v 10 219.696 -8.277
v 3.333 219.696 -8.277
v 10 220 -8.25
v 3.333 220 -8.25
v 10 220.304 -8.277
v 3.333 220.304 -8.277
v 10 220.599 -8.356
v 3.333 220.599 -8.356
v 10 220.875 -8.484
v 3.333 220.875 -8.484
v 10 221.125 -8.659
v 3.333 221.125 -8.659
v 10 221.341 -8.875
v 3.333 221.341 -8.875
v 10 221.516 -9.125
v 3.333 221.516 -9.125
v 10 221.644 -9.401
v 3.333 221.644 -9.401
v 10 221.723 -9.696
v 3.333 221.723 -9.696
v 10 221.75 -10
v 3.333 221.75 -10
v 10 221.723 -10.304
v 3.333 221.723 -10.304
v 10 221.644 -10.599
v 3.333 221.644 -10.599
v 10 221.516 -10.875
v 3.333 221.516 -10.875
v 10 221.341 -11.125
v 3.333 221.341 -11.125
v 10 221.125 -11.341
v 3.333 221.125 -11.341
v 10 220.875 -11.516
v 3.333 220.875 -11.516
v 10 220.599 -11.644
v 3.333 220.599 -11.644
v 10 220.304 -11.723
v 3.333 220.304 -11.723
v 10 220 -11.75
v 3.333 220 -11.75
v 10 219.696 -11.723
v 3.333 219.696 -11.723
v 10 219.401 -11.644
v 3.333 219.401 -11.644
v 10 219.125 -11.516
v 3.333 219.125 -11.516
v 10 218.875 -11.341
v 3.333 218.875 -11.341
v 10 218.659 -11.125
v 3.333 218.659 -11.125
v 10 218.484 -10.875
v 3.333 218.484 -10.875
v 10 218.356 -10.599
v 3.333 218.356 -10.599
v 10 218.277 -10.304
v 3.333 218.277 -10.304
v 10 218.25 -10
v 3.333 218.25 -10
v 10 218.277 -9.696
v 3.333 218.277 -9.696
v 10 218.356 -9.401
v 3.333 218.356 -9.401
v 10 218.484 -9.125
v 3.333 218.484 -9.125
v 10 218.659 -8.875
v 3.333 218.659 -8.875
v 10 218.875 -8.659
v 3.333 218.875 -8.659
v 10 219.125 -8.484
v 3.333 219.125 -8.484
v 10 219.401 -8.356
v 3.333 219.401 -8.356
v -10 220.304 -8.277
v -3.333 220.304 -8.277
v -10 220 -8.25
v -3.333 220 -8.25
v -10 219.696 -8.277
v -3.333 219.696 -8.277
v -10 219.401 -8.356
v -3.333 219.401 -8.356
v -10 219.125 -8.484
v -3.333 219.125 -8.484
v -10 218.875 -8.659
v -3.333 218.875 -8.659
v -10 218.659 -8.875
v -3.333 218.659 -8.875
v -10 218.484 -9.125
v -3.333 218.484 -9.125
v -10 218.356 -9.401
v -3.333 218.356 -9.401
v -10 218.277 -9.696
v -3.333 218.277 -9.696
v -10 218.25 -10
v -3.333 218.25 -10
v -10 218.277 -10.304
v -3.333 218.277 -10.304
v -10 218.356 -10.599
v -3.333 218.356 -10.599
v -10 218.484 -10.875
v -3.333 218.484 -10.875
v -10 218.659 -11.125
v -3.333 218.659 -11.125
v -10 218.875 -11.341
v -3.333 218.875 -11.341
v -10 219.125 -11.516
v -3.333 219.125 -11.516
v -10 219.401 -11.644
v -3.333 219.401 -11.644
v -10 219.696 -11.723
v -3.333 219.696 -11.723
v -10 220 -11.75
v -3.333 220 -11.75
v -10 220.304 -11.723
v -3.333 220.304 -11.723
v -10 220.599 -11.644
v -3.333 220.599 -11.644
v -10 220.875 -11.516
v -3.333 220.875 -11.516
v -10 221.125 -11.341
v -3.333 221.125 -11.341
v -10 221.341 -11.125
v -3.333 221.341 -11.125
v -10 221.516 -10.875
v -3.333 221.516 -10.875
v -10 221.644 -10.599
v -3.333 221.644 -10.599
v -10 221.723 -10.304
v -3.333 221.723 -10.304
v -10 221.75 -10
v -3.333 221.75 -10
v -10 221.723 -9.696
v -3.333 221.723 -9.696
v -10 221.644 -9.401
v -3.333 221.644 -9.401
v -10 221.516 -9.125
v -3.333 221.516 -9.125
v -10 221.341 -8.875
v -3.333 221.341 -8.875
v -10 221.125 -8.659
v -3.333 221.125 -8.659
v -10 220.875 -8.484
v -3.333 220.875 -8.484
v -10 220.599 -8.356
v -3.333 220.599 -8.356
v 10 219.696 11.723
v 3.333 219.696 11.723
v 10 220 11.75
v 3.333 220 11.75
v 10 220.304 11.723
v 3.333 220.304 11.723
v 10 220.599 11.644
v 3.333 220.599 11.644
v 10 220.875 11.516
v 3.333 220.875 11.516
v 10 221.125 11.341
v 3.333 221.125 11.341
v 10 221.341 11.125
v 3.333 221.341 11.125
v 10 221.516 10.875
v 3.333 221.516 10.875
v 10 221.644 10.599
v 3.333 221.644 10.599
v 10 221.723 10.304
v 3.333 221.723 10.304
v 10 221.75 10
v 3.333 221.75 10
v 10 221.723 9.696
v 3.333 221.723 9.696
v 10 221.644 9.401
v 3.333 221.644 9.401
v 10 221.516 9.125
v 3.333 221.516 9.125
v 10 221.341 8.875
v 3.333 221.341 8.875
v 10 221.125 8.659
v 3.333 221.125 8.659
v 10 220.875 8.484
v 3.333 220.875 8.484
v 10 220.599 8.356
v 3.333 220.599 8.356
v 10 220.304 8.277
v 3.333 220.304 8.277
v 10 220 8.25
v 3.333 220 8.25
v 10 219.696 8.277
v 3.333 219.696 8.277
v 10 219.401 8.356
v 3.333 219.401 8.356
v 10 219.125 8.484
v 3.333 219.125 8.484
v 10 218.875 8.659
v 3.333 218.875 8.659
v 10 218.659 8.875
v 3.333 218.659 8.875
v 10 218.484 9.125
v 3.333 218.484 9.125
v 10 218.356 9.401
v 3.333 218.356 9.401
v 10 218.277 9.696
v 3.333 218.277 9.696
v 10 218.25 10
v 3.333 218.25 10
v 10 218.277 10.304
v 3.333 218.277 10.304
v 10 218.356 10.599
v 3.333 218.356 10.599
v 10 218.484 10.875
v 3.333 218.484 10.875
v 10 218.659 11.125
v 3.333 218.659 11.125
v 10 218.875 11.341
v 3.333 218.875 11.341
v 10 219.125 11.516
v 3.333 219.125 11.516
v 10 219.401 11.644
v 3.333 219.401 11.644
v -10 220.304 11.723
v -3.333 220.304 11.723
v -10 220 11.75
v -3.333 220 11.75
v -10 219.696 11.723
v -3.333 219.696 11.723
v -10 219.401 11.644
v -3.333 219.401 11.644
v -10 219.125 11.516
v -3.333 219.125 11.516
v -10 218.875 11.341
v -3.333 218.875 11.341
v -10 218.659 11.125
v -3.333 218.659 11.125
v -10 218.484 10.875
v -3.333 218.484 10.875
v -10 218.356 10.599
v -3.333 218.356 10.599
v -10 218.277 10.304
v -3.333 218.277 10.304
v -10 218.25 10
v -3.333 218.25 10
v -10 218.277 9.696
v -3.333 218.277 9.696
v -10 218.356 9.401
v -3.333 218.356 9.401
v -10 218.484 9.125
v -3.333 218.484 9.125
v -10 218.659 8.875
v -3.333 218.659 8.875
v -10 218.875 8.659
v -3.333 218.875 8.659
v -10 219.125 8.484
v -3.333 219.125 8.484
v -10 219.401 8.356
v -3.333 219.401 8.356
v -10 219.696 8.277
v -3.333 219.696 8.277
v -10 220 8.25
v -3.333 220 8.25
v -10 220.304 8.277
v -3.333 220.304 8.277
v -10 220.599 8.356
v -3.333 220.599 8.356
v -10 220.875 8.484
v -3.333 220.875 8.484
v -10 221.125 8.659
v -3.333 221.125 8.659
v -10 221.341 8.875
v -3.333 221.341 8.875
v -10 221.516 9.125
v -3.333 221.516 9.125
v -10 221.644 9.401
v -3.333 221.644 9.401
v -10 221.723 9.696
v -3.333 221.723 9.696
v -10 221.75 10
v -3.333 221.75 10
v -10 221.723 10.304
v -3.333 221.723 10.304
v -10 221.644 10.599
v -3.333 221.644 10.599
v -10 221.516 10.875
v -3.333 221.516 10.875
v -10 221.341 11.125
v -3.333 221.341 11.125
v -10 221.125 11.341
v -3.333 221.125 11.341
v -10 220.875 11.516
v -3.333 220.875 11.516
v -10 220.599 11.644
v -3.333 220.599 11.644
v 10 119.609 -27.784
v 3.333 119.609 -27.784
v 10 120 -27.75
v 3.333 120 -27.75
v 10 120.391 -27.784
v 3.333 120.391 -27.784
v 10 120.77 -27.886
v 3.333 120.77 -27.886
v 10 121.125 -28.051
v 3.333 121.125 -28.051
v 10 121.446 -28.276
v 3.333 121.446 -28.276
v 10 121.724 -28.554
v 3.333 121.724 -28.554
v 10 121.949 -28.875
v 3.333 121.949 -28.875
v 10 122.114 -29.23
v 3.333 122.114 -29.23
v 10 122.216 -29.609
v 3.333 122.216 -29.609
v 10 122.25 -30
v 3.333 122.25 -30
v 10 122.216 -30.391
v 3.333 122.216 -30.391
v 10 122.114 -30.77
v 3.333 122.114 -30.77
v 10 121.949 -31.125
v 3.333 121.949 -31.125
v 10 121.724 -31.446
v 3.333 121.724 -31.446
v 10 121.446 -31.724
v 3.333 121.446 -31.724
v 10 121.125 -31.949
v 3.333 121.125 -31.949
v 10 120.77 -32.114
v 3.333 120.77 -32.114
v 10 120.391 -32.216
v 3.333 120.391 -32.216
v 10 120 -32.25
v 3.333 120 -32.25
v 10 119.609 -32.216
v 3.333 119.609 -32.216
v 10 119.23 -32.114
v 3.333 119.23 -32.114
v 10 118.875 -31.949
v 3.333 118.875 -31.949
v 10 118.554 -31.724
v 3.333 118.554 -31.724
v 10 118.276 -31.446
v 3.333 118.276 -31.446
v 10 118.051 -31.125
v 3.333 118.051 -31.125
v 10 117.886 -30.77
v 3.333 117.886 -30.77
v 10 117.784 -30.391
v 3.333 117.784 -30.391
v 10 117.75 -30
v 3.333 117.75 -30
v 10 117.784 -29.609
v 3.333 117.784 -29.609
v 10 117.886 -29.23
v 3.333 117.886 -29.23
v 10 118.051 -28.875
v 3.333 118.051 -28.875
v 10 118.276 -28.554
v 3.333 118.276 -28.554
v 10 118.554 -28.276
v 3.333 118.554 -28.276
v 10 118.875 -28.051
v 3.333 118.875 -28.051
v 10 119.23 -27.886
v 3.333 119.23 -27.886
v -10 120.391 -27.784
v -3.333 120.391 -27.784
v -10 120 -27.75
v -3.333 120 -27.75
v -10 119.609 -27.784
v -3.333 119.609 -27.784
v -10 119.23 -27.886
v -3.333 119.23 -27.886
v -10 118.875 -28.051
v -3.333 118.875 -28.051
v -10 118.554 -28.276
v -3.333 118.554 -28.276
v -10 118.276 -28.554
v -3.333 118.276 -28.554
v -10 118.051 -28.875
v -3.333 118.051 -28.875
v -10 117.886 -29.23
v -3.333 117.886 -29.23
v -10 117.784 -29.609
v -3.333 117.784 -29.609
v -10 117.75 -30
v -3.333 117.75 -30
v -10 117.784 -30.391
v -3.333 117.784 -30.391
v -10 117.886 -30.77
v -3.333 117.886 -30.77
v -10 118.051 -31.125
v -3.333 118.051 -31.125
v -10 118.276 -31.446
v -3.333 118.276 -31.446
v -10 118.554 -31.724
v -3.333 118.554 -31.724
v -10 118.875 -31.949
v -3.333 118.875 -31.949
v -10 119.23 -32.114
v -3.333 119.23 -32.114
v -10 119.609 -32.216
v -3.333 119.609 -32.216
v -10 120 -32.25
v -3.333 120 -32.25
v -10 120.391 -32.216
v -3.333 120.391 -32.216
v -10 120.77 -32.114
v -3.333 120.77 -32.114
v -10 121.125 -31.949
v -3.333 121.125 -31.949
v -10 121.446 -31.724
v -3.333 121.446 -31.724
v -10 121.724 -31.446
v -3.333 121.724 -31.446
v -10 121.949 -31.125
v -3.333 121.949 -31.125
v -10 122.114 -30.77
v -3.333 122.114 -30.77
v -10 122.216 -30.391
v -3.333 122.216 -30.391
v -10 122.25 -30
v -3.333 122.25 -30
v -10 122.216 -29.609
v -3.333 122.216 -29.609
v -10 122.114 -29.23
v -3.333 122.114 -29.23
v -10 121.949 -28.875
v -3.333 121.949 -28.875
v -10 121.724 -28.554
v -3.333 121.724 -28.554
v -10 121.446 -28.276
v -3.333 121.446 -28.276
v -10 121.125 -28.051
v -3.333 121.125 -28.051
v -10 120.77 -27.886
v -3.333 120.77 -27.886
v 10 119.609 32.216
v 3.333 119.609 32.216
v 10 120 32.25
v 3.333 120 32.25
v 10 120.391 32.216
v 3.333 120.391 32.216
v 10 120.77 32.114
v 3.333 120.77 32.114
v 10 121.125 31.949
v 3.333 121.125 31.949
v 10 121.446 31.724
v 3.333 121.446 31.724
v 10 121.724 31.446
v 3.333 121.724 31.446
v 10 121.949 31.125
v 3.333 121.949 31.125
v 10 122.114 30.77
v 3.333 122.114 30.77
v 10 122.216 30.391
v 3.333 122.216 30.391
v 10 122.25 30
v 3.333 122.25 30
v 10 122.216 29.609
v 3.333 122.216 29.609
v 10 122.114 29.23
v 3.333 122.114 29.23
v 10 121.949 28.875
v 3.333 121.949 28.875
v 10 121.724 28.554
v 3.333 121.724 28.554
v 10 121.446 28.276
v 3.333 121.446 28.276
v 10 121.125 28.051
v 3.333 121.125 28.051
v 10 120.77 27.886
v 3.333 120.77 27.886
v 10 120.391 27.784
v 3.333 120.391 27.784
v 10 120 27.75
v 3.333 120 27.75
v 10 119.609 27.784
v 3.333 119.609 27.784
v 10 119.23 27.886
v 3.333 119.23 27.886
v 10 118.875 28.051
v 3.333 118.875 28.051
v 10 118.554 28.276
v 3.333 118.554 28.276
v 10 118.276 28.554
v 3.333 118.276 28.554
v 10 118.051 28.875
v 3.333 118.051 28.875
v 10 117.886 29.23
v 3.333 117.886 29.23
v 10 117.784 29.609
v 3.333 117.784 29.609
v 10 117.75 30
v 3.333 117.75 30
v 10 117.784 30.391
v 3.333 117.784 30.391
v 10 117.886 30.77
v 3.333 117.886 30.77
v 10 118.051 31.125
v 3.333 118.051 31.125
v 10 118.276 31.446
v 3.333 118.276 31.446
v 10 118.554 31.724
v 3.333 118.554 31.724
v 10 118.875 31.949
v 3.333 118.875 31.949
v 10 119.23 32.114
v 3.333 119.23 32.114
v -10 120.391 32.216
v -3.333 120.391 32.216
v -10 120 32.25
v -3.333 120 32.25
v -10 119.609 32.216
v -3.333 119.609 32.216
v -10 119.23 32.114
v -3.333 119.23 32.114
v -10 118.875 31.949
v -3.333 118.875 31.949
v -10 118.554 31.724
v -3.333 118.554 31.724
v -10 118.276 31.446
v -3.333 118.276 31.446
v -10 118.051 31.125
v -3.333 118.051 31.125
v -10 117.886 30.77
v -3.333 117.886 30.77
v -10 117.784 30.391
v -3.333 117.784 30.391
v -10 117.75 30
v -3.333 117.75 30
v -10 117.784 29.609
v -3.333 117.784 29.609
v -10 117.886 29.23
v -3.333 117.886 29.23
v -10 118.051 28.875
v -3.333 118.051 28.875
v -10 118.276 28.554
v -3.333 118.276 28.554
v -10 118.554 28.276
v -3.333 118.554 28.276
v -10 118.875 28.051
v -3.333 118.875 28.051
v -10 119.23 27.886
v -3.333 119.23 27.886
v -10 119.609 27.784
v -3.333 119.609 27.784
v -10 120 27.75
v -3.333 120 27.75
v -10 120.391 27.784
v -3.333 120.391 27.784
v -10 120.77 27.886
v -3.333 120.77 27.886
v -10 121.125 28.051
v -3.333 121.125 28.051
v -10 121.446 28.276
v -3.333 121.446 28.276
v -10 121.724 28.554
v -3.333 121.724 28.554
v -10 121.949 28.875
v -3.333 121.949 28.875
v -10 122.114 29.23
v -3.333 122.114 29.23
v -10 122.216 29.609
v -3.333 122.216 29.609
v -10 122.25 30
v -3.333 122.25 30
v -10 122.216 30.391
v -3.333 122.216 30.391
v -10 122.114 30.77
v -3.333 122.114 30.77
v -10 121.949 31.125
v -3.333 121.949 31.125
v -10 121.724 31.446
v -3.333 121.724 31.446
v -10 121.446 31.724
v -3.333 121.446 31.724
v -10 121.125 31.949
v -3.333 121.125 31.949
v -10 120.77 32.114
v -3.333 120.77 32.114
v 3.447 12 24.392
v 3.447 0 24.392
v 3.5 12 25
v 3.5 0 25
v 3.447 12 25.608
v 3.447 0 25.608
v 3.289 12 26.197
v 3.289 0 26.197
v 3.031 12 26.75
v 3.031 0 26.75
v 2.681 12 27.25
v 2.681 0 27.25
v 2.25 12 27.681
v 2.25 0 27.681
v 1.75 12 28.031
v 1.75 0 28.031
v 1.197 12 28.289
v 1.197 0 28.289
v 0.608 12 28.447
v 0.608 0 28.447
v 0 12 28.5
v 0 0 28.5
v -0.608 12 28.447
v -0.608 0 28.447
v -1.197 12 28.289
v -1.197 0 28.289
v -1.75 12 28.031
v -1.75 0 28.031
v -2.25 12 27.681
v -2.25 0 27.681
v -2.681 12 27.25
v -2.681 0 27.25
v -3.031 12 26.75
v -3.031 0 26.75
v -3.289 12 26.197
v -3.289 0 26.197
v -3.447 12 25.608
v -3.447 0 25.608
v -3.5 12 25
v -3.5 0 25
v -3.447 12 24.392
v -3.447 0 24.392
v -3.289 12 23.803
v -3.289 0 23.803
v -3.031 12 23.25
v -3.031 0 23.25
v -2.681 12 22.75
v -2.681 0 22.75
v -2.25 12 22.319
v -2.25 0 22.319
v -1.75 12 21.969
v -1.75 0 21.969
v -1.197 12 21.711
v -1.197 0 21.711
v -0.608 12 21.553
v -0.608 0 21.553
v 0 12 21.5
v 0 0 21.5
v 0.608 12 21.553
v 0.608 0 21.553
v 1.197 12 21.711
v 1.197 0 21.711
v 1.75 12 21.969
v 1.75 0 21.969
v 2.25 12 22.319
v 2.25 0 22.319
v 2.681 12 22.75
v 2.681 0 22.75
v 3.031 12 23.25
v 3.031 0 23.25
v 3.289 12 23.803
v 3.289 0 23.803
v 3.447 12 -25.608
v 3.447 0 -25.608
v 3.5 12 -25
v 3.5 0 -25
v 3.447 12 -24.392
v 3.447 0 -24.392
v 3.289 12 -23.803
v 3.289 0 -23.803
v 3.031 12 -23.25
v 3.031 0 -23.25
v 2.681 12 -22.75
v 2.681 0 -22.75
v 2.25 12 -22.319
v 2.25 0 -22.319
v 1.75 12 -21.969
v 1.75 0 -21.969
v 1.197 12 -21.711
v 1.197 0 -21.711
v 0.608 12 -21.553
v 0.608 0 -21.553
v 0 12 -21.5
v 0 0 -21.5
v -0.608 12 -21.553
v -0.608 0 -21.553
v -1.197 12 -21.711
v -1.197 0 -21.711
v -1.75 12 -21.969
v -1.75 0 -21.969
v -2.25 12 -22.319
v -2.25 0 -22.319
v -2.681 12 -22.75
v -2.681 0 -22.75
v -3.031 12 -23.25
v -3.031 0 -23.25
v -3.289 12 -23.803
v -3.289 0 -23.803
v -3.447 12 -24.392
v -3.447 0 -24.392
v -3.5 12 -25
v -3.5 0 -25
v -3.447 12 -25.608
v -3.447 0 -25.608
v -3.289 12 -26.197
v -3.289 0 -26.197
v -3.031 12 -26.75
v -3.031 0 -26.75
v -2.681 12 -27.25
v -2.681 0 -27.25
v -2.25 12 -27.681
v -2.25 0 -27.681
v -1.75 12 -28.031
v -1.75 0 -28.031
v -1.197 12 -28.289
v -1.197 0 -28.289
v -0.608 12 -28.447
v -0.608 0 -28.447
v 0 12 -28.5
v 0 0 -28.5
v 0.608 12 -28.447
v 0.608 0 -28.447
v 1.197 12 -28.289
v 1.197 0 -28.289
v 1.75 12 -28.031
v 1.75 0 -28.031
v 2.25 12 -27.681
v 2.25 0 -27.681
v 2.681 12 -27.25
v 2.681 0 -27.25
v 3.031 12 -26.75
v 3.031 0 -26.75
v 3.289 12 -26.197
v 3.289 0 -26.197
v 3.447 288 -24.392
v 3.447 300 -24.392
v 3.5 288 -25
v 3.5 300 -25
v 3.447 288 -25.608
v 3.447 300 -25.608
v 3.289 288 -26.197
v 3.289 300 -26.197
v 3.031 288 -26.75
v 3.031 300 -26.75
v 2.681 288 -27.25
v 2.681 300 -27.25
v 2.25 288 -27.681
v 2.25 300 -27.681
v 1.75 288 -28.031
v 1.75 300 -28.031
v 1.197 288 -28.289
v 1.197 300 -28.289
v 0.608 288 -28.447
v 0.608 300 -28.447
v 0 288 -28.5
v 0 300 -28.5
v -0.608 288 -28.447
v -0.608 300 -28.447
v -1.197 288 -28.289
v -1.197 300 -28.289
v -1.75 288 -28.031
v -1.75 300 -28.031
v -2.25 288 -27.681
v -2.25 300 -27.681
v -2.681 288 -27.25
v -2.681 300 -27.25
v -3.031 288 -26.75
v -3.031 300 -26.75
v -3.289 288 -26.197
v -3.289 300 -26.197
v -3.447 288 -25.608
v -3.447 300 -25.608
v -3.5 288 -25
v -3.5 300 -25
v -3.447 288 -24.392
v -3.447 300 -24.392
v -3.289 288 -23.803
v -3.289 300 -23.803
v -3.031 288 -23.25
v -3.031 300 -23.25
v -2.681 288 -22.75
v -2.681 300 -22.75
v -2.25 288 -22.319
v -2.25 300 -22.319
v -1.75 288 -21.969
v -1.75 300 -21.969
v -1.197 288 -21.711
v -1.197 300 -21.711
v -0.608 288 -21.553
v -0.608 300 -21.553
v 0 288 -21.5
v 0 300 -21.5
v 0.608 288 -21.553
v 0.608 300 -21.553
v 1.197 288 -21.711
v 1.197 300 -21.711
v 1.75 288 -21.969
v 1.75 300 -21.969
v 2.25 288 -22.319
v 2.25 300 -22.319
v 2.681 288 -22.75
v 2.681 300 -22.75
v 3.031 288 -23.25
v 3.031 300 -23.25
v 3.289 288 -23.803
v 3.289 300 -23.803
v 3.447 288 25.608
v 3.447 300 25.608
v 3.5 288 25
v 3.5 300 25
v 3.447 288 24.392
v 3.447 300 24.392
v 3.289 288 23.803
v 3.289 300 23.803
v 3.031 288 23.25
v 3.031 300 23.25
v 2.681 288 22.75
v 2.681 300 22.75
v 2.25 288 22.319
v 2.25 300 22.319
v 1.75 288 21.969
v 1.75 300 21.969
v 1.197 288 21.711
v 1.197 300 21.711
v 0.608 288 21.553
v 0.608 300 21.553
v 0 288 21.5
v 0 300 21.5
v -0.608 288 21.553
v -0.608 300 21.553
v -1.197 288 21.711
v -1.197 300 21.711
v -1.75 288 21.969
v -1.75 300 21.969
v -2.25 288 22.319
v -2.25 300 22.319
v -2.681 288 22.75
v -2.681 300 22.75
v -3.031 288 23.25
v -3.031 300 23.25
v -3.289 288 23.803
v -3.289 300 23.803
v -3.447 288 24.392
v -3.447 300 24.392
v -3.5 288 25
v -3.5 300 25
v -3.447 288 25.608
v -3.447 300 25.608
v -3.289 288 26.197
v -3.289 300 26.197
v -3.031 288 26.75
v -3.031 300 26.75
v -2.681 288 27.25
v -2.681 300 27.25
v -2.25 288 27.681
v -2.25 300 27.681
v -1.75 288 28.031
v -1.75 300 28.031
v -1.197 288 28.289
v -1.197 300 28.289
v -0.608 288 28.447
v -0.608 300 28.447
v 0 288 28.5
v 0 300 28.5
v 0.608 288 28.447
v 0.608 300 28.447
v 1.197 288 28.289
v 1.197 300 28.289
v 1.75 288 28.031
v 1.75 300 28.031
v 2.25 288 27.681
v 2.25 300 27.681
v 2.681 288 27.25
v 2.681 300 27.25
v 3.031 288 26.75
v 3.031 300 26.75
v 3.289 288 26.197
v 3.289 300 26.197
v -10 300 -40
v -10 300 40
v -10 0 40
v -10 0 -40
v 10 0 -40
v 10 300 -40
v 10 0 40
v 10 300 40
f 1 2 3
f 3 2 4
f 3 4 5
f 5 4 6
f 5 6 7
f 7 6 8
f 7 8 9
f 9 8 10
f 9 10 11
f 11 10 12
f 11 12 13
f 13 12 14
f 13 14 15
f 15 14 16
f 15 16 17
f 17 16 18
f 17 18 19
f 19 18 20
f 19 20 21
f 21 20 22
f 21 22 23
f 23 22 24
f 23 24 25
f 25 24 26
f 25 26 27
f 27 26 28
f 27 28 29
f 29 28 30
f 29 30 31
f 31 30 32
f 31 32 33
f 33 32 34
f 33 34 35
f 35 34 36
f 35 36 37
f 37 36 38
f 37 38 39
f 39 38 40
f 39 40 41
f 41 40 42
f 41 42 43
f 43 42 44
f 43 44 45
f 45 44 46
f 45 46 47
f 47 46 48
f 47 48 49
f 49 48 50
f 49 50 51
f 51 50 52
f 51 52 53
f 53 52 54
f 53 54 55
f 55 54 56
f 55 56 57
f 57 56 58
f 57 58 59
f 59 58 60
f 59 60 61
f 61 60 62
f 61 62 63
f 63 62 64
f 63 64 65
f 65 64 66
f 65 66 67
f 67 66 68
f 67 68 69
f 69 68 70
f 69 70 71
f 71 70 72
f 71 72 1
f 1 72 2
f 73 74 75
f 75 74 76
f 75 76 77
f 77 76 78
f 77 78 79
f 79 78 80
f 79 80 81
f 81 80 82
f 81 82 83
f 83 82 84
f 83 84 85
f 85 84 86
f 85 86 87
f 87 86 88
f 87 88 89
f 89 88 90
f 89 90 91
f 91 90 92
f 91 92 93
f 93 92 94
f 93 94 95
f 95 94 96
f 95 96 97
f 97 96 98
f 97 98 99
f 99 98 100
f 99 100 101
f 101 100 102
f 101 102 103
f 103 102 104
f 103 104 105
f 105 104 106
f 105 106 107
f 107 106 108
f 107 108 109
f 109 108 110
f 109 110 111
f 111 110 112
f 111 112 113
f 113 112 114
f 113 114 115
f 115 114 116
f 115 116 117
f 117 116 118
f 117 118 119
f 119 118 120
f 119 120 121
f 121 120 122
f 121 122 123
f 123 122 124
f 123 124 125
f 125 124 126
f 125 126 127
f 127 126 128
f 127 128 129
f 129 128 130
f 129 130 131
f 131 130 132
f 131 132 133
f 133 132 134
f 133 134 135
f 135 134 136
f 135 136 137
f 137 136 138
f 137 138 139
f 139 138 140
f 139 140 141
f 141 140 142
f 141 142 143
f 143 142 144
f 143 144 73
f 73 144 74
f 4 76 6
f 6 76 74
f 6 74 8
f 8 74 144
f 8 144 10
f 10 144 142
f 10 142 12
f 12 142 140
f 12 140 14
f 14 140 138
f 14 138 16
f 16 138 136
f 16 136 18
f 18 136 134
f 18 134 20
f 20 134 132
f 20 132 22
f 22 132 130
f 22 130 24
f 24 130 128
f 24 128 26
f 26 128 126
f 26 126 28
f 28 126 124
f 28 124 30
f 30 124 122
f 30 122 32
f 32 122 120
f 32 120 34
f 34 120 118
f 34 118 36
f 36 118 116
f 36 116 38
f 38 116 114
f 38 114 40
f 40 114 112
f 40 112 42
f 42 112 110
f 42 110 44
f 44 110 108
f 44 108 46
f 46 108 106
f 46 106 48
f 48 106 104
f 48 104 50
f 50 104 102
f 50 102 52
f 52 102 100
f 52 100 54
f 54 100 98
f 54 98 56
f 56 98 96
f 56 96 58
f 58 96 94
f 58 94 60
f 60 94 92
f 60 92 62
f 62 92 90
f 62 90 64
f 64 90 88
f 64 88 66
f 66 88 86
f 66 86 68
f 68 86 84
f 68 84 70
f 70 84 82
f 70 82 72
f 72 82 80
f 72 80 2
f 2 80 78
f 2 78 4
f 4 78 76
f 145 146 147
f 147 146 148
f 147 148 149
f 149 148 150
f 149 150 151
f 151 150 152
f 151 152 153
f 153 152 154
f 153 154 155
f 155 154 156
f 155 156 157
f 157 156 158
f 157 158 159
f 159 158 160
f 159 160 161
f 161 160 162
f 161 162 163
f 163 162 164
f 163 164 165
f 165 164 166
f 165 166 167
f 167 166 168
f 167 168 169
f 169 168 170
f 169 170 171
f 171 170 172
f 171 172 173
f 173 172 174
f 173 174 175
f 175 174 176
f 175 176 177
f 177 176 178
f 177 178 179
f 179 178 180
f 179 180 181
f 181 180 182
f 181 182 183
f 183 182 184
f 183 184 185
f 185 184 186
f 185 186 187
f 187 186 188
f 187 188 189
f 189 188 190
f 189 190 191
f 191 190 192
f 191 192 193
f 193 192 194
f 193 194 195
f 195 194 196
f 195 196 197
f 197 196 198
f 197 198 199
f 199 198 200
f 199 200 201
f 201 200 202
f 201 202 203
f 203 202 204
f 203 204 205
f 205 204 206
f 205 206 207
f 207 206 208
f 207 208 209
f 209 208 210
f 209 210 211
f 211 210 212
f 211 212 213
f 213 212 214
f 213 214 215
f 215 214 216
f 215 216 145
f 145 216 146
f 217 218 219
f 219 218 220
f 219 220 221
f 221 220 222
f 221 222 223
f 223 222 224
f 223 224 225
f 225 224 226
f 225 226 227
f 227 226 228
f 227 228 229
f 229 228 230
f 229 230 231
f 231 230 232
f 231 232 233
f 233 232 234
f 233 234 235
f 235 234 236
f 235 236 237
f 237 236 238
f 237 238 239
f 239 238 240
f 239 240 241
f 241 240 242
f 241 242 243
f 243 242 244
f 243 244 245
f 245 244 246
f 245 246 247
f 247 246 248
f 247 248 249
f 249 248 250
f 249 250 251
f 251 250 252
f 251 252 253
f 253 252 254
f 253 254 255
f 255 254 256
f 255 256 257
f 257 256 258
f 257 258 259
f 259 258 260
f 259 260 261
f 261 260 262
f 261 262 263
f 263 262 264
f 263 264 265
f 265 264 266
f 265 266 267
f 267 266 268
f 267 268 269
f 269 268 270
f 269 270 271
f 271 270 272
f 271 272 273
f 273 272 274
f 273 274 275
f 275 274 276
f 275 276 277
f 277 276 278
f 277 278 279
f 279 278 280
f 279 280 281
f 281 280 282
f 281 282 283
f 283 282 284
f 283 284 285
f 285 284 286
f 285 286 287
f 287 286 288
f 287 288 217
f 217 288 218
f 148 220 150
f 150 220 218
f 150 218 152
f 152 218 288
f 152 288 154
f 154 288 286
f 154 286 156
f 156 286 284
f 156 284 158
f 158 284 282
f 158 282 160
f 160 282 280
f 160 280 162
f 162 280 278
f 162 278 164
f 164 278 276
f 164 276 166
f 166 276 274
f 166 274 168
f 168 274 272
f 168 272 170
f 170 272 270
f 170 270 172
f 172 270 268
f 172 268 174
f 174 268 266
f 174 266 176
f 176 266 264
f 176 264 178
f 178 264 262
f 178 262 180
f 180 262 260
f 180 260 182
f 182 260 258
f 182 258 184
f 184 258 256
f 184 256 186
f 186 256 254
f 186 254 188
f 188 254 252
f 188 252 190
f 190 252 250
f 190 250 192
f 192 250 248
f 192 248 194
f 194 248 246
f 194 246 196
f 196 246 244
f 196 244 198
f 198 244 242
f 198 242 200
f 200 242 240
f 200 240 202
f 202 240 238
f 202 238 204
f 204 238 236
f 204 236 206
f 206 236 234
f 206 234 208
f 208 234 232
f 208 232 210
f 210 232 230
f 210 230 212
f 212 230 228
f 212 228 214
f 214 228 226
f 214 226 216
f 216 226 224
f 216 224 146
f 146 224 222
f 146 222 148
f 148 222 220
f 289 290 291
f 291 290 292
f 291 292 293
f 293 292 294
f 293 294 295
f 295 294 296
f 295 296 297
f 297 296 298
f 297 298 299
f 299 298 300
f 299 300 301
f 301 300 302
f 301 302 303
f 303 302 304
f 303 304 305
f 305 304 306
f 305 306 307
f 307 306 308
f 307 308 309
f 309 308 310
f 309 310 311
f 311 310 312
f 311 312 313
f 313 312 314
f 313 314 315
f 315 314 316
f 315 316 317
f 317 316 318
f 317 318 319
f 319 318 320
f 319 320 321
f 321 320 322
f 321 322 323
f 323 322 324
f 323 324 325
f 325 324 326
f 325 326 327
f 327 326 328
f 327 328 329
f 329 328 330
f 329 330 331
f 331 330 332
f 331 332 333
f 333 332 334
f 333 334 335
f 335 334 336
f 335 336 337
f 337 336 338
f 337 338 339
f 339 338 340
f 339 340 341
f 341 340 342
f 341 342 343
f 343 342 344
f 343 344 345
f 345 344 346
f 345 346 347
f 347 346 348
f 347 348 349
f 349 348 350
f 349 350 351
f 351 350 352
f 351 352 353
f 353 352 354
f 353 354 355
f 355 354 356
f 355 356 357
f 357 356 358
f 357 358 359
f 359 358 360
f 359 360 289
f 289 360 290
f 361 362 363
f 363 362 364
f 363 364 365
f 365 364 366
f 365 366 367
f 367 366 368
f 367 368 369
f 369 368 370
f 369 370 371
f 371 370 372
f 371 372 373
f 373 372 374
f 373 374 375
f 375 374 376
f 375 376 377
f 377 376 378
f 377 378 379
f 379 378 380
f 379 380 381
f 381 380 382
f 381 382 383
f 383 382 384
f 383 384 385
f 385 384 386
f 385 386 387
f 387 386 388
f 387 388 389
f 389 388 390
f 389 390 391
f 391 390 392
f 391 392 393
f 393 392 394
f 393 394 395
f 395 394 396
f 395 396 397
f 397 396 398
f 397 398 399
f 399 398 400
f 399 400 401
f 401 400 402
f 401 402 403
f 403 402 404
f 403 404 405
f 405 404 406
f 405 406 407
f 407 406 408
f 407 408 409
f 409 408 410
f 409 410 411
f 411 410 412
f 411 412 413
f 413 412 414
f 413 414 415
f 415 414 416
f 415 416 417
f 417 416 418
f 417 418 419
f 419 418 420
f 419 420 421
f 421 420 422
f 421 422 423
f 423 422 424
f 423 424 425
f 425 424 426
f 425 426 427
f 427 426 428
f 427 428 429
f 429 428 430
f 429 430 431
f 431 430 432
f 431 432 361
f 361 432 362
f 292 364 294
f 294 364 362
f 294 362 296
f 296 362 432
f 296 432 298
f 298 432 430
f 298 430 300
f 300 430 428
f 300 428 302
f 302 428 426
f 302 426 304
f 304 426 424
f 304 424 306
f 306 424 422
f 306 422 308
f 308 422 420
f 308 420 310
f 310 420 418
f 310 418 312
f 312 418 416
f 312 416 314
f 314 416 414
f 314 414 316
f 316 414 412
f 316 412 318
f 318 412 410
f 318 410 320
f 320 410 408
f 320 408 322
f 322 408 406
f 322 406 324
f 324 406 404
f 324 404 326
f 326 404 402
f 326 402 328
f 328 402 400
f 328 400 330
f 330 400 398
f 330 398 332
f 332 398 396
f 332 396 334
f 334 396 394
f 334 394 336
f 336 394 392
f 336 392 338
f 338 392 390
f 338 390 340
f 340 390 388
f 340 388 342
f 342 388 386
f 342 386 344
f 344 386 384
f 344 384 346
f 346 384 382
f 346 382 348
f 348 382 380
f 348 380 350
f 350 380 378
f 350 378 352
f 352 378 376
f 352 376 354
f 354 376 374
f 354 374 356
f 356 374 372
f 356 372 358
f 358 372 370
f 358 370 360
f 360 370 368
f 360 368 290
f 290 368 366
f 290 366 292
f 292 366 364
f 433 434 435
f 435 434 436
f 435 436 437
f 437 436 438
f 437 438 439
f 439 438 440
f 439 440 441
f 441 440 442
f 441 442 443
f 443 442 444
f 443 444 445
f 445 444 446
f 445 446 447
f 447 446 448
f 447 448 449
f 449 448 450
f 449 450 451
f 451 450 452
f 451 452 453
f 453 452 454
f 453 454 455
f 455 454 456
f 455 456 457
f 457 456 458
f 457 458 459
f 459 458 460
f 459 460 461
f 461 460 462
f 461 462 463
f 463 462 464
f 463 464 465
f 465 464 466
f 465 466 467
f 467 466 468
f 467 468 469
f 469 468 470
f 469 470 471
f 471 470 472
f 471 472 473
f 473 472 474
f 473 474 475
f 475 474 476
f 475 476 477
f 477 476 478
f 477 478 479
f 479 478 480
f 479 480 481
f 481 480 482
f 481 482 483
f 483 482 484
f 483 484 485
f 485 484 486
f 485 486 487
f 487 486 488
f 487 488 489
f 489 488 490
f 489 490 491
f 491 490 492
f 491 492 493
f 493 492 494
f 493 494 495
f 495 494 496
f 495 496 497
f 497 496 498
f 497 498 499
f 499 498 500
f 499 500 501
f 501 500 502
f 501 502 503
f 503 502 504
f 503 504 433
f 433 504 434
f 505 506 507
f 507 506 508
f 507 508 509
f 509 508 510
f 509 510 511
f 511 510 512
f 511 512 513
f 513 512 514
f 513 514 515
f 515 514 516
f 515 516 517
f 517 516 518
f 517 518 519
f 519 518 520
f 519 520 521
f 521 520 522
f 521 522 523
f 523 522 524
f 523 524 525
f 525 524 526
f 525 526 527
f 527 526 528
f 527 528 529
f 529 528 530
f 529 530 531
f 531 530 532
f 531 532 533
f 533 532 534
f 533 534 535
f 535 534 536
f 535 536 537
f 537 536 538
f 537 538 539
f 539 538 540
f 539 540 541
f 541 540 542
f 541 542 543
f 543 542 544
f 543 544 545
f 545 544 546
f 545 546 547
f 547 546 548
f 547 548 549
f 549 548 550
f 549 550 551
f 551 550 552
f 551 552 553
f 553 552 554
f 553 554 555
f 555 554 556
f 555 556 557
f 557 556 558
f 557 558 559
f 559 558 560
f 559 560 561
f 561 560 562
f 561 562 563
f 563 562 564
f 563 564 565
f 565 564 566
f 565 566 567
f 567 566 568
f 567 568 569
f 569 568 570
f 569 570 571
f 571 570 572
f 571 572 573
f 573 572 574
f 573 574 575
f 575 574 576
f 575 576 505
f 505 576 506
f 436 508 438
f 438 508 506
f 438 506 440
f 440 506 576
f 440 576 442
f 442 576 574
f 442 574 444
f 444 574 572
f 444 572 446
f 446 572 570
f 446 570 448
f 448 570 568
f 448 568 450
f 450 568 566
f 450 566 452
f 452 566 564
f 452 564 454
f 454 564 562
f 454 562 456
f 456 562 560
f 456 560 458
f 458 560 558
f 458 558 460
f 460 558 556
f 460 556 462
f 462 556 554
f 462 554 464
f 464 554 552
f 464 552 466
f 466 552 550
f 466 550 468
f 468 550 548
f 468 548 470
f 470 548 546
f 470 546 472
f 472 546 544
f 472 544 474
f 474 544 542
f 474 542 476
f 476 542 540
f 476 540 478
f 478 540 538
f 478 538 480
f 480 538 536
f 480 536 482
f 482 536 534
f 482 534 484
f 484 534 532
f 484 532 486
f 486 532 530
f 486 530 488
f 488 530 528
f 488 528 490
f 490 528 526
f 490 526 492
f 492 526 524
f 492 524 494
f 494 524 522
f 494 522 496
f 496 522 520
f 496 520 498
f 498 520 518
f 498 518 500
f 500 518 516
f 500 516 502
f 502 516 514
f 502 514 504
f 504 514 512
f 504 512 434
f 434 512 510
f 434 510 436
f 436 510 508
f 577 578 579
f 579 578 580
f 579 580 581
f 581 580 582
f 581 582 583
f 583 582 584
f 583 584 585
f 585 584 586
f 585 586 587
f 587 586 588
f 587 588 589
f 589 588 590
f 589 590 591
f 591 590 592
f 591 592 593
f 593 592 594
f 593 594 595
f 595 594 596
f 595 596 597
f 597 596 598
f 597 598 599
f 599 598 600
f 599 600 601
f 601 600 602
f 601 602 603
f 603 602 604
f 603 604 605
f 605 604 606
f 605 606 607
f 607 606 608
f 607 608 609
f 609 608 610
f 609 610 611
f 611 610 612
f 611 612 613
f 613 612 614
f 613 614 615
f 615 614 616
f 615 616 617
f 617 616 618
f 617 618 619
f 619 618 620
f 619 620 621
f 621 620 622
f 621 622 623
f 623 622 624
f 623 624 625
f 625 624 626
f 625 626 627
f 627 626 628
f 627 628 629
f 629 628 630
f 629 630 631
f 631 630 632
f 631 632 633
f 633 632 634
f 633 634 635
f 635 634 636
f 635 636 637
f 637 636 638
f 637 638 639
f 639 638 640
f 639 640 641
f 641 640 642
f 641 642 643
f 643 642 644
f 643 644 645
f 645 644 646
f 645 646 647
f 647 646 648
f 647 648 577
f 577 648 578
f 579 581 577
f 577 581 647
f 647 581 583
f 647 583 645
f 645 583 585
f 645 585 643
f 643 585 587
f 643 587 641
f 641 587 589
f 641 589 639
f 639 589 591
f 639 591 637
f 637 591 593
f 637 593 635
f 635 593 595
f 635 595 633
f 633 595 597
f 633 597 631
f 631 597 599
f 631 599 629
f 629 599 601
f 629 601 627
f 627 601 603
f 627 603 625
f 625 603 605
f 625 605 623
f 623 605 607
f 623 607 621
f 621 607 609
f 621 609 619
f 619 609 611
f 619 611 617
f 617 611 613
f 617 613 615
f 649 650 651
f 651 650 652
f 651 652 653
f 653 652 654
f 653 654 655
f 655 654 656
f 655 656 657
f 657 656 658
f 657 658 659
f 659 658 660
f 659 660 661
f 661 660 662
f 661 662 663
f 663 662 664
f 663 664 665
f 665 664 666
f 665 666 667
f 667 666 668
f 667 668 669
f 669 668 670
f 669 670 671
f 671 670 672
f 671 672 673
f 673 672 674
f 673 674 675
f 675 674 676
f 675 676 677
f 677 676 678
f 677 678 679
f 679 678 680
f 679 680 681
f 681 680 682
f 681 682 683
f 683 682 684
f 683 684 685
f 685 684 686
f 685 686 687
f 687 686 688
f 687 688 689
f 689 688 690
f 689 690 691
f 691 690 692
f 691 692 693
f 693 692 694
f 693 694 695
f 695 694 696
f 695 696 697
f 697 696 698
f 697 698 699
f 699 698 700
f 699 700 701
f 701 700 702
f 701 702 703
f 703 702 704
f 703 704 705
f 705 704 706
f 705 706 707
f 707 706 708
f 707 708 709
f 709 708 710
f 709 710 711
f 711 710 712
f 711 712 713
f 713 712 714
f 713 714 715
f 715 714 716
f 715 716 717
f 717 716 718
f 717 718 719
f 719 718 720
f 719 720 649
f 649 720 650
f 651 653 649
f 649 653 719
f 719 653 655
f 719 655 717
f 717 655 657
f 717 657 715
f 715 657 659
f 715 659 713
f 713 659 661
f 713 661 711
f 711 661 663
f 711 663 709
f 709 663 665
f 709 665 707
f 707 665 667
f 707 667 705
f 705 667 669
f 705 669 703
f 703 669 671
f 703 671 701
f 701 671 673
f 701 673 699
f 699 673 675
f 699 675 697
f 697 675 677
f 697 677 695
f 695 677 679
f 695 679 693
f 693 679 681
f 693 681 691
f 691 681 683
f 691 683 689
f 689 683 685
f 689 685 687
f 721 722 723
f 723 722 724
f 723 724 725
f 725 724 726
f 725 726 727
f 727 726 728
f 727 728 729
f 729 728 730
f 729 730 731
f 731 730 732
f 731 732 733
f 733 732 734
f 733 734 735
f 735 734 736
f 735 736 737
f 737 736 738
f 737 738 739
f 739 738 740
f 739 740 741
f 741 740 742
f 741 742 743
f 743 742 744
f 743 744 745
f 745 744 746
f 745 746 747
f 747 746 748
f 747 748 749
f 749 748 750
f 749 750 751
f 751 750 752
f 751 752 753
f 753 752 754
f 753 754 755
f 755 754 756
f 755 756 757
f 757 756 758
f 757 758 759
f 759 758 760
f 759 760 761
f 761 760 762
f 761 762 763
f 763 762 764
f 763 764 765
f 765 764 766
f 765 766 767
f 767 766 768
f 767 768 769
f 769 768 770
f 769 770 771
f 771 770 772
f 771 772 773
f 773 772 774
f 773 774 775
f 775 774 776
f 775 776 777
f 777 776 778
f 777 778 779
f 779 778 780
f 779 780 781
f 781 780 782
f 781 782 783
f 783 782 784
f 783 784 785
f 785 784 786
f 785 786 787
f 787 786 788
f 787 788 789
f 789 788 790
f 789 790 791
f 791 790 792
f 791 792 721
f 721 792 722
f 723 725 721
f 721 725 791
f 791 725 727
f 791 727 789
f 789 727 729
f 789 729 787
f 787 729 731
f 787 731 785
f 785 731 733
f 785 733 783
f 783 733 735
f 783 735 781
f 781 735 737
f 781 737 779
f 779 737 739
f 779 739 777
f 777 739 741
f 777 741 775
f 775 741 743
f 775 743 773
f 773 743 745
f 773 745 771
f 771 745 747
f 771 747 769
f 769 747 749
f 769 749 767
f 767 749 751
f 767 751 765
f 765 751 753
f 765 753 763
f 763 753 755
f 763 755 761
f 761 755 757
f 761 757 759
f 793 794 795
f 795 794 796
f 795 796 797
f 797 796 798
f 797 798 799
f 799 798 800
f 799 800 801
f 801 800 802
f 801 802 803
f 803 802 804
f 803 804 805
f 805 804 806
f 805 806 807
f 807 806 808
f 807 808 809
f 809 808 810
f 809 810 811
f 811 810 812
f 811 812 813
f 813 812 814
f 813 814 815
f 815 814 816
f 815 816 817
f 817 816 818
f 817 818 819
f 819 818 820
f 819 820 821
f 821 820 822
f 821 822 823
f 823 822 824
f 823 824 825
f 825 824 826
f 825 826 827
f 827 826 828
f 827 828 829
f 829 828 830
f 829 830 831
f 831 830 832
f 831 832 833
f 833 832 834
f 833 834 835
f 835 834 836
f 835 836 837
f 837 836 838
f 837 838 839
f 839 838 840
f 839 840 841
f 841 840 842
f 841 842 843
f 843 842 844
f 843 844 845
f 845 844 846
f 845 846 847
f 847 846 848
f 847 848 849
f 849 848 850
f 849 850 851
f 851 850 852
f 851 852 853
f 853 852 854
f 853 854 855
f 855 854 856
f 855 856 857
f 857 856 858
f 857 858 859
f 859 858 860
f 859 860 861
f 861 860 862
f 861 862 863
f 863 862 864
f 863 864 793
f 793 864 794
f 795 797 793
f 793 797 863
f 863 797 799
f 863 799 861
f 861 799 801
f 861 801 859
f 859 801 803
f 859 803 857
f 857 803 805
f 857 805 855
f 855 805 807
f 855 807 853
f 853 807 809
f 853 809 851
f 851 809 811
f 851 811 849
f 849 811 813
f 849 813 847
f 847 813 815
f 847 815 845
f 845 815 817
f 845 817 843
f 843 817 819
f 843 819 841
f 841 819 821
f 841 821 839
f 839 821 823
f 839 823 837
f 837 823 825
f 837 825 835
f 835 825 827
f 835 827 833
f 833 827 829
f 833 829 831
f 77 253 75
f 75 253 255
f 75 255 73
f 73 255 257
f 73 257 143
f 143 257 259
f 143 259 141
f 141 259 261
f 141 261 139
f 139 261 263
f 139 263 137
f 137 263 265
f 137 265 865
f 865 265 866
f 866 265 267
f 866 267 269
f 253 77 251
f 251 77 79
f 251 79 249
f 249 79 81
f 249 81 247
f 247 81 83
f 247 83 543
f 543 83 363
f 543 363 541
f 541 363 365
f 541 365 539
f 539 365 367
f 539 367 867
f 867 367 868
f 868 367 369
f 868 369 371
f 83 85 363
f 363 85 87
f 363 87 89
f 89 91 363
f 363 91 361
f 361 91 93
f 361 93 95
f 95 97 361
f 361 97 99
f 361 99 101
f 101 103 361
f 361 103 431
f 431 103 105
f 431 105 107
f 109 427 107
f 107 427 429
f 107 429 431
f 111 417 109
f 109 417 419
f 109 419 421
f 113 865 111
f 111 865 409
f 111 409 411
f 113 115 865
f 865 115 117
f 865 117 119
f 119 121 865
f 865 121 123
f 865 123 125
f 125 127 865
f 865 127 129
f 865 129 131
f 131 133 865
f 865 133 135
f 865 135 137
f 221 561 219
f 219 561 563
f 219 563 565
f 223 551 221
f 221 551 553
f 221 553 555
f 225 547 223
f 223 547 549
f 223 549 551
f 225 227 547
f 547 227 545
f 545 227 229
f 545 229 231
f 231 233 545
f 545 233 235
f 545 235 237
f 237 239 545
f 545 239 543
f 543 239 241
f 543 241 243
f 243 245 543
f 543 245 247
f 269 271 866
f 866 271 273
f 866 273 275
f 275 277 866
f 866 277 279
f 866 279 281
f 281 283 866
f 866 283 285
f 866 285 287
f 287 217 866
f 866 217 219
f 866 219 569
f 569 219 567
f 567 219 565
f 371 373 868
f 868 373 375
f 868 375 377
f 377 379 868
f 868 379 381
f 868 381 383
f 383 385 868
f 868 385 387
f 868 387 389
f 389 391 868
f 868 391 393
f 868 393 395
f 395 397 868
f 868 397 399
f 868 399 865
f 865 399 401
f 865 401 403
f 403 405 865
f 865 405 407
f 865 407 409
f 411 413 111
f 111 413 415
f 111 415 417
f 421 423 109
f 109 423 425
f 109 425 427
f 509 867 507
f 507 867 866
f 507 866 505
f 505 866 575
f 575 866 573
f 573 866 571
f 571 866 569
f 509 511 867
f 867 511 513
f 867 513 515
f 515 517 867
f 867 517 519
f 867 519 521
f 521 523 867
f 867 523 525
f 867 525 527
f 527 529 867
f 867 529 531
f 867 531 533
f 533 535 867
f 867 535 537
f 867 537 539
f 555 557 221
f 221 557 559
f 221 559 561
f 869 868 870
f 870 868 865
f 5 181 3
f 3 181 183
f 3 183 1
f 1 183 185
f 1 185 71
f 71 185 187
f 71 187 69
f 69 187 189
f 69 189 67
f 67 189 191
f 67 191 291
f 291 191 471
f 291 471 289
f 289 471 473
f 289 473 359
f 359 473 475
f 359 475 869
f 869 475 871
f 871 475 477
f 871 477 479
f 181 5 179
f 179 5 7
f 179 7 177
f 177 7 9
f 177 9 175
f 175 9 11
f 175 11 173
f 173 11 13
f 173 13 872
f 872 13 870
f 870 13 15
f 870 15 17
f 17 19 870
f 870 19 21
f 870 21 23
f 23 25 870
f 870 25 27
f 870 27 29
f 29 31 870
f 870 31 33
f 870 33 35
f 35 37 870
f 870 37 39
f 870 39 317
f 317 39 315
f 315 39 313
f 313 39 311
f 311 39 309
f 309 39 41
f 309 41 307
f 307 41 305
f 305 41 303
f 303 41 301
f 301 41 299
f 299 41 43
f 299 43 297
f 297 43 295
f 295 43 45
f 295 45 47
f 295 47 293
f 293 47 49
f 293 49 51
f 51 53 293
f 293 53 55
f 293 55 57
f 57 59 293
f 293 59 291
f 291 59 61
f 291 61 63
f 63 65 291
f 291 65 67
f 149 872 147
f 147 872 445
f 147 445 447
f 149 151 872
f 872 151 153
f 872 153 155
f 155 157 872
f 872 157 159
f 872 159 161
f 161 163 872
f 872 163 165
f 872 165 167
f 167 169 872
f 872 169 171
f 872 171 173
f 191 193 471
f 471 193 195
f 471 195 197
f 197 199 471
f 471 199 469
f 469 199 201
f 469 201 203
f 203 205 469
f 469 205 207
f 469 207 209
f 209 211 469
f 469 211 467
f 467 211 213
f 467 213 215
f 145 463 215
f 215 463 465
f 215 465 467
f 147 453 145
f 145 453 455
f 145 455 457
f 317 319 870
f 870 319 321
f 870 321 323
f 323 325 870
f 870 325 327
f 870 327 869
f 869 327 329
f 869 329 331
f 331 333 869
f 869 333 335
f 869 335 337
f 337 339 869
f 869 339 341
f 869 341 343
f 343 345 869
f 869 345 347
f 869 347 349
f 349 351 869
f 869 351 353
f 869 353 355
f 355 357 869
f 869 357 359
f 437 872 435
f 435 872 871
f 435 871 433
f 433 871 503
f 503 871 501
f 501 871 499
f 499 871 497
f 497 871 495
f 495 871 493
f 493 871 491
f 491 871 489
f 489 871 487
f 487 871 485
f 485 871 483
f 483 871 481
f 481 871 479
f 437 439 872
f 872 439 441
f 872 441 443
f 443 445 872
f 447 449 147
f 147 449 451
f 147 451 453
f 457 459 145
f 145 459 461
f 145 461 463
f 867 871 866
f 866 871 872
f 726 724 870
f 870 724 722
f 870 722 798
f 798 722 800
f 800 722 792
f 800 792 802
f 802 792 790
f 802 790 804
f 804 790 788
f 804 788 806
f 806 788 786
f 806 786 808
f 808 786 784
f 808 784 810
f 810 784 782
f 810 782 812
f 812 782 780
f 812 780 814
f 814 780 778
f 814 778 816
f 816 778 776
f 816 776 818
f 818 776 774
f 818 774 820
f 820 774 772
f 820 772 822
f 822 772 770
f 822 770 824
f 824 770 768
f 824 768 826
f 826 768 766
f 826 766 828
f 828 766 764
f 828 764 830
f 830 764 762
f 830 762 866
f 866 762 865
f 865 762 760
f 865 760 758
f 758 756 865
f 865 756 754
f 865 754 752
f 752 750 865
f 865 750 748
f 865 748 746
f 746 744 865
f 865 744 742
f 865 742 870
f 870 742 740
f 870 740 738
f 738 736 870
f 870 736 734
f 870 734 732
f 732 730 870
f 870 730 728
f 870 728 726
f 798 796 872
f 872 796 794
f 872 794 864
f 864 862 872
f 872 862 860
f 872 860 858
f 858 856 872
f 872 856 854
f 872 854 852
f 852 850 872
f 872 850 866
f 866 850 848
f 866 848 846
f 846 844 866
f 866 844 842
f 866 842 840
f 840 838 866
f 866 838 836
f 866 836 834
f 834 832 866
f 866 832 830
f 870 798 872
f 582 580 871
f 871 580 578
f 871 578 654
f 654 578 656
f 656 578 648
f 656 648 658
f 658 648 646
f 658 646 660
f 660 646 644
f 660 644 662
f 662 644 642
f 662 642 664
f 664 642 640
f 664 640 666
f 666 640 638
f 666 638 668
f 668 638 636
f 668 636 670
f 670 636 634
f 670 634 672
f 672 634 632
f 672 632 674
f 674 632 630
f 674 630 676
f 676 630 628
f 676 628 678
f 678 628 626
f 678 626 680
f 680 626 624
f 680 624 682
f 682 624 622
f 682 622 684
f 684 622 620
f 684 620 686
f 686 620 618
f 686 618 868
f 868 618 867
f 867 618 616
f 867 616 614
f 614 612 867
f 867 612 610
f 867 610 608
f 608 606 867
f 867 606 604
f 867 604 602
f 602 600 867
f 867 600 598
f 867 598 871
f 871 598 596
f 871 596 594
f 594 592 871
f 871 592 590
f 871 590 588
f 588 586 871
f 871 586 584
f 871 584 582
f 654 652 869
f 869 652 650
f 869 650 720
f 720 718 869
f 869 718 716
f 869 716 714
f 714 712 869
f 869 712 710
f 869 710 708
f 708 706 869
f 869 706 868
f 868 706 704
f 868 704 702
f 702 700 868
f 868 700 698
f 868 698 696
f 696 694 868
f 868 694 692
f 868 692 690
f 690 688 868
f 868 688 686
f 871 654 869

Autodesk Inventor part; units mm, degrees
ref_plane "YZ Plane" through (0, 0, 0) normal (1, 0, 0) x (0, 1, 0)
ref_plane "XZ Plane" through (0, 0, 0) normal (0, 1, 0) x (-1, 0, 0)
ref_plane "XY Plane" through (0, 0, 0) normal (0, 0, 1) x (1, 0, 0)
sketch "Sketch1" plane through (0, 0, 0) normal (0, 1, 0) x (-1, 0, 0)
  line L0 (10, 40) -> (-10, 40)
  line L1 (-10, 40) -> (-10, -40)
  line L2 (-10, -40) -> (10, -40)
  line L3 (10, -40) -> (10, 40)
  line L4 (10, 0) -> (-10, 0) construction
  line L5 (0, 40) -> (0, -40) construction
  point P0 (0, 0)
  point P1 (0, 0)
  dimension "d0" = 20
  dimension "d1" = 80
extrude "Extrusion1" add sketch "Sketch1" along normal blind 300
sketch "Sketch2" plane through (0, 300, 0) normal (0, 1, 0) x (1, 0, 0)
  circle A0 centre (0, 25) radius 3.5
  circle A1 centre (0, -25) radius 3.5
  line L0 (0, -25) -> (0, 25) construction
  line L1 (10, 40) -> (-10, 40) construction
  line L2 (0, 40) -> (0, -40) construction
  line L3 (-10, -40) -> (10, -40) construction
  point P0 (0, 0)
  dimension "d4" = 7
  dimension "d5" = 7
  dimension "d6" = 50
  dimension "d7" = 15
extrude "Extrusion2" cut sketch "Sketch2" against normal blind 12
sketch "Sketch3" plane through (0, 0, 0) normal (0, -1, 0) x (1, 0, 0)
  circle A0 centre (0, 25) radius 3.5 projected
  circle A1 centre (0, -25) radius 3.5 projected
  point P0 (0, 0)
extrude "Extrusion3" cut sketch "Sketch3" against normal blind 12
sketch "Sketch4" plane through (-10, 0, -40) normal (-1, 0, 0) x (0, 0, 1)
  circle A0 centre (10, 120) radius 2.25
  circle A1 centre (70, 120) radius 2.25
  line L0 (10, 120) -> (70, 120) construction
  line L1 (0, 0) -> (0, 300) construction
  line L2 (0, 0) -> (80, 0) construction
  point P0 (40, 0)
  dimension "d12" = 4.5
  dimension "d13" = 4.5
  dimension "d14" = 60
  dimension "d15" = 10
  dimension "d16" = 120
extrude "Extrusion4" cut sketch "Sketch4" against normal up to next
sketch "Sketch5" plane through (-10, 0, -40) normal (-1, 0, 0) x (0, 0, 1)
  circle A0 centre (30, 220) radius 1.75
  circle A1 centre (50, 220) radius 1.75
  line L0 (30, 220) -> (50, 220) construction
  line L1 (0, 0) -> (0, 300) construction
  line L2 (0, 300) -> (80, 300) construction
  point P0 (40, 0)
  dimension "d19" = 3.5
  dimension "d20" = 3.5
  dimension "d21" = 20
  dimension "d22" = 30
  dimension "d23" = 80
extrude "Extrusion5" cut sketch "Sketch5" against normal up to next
properties part number "side_panel"
